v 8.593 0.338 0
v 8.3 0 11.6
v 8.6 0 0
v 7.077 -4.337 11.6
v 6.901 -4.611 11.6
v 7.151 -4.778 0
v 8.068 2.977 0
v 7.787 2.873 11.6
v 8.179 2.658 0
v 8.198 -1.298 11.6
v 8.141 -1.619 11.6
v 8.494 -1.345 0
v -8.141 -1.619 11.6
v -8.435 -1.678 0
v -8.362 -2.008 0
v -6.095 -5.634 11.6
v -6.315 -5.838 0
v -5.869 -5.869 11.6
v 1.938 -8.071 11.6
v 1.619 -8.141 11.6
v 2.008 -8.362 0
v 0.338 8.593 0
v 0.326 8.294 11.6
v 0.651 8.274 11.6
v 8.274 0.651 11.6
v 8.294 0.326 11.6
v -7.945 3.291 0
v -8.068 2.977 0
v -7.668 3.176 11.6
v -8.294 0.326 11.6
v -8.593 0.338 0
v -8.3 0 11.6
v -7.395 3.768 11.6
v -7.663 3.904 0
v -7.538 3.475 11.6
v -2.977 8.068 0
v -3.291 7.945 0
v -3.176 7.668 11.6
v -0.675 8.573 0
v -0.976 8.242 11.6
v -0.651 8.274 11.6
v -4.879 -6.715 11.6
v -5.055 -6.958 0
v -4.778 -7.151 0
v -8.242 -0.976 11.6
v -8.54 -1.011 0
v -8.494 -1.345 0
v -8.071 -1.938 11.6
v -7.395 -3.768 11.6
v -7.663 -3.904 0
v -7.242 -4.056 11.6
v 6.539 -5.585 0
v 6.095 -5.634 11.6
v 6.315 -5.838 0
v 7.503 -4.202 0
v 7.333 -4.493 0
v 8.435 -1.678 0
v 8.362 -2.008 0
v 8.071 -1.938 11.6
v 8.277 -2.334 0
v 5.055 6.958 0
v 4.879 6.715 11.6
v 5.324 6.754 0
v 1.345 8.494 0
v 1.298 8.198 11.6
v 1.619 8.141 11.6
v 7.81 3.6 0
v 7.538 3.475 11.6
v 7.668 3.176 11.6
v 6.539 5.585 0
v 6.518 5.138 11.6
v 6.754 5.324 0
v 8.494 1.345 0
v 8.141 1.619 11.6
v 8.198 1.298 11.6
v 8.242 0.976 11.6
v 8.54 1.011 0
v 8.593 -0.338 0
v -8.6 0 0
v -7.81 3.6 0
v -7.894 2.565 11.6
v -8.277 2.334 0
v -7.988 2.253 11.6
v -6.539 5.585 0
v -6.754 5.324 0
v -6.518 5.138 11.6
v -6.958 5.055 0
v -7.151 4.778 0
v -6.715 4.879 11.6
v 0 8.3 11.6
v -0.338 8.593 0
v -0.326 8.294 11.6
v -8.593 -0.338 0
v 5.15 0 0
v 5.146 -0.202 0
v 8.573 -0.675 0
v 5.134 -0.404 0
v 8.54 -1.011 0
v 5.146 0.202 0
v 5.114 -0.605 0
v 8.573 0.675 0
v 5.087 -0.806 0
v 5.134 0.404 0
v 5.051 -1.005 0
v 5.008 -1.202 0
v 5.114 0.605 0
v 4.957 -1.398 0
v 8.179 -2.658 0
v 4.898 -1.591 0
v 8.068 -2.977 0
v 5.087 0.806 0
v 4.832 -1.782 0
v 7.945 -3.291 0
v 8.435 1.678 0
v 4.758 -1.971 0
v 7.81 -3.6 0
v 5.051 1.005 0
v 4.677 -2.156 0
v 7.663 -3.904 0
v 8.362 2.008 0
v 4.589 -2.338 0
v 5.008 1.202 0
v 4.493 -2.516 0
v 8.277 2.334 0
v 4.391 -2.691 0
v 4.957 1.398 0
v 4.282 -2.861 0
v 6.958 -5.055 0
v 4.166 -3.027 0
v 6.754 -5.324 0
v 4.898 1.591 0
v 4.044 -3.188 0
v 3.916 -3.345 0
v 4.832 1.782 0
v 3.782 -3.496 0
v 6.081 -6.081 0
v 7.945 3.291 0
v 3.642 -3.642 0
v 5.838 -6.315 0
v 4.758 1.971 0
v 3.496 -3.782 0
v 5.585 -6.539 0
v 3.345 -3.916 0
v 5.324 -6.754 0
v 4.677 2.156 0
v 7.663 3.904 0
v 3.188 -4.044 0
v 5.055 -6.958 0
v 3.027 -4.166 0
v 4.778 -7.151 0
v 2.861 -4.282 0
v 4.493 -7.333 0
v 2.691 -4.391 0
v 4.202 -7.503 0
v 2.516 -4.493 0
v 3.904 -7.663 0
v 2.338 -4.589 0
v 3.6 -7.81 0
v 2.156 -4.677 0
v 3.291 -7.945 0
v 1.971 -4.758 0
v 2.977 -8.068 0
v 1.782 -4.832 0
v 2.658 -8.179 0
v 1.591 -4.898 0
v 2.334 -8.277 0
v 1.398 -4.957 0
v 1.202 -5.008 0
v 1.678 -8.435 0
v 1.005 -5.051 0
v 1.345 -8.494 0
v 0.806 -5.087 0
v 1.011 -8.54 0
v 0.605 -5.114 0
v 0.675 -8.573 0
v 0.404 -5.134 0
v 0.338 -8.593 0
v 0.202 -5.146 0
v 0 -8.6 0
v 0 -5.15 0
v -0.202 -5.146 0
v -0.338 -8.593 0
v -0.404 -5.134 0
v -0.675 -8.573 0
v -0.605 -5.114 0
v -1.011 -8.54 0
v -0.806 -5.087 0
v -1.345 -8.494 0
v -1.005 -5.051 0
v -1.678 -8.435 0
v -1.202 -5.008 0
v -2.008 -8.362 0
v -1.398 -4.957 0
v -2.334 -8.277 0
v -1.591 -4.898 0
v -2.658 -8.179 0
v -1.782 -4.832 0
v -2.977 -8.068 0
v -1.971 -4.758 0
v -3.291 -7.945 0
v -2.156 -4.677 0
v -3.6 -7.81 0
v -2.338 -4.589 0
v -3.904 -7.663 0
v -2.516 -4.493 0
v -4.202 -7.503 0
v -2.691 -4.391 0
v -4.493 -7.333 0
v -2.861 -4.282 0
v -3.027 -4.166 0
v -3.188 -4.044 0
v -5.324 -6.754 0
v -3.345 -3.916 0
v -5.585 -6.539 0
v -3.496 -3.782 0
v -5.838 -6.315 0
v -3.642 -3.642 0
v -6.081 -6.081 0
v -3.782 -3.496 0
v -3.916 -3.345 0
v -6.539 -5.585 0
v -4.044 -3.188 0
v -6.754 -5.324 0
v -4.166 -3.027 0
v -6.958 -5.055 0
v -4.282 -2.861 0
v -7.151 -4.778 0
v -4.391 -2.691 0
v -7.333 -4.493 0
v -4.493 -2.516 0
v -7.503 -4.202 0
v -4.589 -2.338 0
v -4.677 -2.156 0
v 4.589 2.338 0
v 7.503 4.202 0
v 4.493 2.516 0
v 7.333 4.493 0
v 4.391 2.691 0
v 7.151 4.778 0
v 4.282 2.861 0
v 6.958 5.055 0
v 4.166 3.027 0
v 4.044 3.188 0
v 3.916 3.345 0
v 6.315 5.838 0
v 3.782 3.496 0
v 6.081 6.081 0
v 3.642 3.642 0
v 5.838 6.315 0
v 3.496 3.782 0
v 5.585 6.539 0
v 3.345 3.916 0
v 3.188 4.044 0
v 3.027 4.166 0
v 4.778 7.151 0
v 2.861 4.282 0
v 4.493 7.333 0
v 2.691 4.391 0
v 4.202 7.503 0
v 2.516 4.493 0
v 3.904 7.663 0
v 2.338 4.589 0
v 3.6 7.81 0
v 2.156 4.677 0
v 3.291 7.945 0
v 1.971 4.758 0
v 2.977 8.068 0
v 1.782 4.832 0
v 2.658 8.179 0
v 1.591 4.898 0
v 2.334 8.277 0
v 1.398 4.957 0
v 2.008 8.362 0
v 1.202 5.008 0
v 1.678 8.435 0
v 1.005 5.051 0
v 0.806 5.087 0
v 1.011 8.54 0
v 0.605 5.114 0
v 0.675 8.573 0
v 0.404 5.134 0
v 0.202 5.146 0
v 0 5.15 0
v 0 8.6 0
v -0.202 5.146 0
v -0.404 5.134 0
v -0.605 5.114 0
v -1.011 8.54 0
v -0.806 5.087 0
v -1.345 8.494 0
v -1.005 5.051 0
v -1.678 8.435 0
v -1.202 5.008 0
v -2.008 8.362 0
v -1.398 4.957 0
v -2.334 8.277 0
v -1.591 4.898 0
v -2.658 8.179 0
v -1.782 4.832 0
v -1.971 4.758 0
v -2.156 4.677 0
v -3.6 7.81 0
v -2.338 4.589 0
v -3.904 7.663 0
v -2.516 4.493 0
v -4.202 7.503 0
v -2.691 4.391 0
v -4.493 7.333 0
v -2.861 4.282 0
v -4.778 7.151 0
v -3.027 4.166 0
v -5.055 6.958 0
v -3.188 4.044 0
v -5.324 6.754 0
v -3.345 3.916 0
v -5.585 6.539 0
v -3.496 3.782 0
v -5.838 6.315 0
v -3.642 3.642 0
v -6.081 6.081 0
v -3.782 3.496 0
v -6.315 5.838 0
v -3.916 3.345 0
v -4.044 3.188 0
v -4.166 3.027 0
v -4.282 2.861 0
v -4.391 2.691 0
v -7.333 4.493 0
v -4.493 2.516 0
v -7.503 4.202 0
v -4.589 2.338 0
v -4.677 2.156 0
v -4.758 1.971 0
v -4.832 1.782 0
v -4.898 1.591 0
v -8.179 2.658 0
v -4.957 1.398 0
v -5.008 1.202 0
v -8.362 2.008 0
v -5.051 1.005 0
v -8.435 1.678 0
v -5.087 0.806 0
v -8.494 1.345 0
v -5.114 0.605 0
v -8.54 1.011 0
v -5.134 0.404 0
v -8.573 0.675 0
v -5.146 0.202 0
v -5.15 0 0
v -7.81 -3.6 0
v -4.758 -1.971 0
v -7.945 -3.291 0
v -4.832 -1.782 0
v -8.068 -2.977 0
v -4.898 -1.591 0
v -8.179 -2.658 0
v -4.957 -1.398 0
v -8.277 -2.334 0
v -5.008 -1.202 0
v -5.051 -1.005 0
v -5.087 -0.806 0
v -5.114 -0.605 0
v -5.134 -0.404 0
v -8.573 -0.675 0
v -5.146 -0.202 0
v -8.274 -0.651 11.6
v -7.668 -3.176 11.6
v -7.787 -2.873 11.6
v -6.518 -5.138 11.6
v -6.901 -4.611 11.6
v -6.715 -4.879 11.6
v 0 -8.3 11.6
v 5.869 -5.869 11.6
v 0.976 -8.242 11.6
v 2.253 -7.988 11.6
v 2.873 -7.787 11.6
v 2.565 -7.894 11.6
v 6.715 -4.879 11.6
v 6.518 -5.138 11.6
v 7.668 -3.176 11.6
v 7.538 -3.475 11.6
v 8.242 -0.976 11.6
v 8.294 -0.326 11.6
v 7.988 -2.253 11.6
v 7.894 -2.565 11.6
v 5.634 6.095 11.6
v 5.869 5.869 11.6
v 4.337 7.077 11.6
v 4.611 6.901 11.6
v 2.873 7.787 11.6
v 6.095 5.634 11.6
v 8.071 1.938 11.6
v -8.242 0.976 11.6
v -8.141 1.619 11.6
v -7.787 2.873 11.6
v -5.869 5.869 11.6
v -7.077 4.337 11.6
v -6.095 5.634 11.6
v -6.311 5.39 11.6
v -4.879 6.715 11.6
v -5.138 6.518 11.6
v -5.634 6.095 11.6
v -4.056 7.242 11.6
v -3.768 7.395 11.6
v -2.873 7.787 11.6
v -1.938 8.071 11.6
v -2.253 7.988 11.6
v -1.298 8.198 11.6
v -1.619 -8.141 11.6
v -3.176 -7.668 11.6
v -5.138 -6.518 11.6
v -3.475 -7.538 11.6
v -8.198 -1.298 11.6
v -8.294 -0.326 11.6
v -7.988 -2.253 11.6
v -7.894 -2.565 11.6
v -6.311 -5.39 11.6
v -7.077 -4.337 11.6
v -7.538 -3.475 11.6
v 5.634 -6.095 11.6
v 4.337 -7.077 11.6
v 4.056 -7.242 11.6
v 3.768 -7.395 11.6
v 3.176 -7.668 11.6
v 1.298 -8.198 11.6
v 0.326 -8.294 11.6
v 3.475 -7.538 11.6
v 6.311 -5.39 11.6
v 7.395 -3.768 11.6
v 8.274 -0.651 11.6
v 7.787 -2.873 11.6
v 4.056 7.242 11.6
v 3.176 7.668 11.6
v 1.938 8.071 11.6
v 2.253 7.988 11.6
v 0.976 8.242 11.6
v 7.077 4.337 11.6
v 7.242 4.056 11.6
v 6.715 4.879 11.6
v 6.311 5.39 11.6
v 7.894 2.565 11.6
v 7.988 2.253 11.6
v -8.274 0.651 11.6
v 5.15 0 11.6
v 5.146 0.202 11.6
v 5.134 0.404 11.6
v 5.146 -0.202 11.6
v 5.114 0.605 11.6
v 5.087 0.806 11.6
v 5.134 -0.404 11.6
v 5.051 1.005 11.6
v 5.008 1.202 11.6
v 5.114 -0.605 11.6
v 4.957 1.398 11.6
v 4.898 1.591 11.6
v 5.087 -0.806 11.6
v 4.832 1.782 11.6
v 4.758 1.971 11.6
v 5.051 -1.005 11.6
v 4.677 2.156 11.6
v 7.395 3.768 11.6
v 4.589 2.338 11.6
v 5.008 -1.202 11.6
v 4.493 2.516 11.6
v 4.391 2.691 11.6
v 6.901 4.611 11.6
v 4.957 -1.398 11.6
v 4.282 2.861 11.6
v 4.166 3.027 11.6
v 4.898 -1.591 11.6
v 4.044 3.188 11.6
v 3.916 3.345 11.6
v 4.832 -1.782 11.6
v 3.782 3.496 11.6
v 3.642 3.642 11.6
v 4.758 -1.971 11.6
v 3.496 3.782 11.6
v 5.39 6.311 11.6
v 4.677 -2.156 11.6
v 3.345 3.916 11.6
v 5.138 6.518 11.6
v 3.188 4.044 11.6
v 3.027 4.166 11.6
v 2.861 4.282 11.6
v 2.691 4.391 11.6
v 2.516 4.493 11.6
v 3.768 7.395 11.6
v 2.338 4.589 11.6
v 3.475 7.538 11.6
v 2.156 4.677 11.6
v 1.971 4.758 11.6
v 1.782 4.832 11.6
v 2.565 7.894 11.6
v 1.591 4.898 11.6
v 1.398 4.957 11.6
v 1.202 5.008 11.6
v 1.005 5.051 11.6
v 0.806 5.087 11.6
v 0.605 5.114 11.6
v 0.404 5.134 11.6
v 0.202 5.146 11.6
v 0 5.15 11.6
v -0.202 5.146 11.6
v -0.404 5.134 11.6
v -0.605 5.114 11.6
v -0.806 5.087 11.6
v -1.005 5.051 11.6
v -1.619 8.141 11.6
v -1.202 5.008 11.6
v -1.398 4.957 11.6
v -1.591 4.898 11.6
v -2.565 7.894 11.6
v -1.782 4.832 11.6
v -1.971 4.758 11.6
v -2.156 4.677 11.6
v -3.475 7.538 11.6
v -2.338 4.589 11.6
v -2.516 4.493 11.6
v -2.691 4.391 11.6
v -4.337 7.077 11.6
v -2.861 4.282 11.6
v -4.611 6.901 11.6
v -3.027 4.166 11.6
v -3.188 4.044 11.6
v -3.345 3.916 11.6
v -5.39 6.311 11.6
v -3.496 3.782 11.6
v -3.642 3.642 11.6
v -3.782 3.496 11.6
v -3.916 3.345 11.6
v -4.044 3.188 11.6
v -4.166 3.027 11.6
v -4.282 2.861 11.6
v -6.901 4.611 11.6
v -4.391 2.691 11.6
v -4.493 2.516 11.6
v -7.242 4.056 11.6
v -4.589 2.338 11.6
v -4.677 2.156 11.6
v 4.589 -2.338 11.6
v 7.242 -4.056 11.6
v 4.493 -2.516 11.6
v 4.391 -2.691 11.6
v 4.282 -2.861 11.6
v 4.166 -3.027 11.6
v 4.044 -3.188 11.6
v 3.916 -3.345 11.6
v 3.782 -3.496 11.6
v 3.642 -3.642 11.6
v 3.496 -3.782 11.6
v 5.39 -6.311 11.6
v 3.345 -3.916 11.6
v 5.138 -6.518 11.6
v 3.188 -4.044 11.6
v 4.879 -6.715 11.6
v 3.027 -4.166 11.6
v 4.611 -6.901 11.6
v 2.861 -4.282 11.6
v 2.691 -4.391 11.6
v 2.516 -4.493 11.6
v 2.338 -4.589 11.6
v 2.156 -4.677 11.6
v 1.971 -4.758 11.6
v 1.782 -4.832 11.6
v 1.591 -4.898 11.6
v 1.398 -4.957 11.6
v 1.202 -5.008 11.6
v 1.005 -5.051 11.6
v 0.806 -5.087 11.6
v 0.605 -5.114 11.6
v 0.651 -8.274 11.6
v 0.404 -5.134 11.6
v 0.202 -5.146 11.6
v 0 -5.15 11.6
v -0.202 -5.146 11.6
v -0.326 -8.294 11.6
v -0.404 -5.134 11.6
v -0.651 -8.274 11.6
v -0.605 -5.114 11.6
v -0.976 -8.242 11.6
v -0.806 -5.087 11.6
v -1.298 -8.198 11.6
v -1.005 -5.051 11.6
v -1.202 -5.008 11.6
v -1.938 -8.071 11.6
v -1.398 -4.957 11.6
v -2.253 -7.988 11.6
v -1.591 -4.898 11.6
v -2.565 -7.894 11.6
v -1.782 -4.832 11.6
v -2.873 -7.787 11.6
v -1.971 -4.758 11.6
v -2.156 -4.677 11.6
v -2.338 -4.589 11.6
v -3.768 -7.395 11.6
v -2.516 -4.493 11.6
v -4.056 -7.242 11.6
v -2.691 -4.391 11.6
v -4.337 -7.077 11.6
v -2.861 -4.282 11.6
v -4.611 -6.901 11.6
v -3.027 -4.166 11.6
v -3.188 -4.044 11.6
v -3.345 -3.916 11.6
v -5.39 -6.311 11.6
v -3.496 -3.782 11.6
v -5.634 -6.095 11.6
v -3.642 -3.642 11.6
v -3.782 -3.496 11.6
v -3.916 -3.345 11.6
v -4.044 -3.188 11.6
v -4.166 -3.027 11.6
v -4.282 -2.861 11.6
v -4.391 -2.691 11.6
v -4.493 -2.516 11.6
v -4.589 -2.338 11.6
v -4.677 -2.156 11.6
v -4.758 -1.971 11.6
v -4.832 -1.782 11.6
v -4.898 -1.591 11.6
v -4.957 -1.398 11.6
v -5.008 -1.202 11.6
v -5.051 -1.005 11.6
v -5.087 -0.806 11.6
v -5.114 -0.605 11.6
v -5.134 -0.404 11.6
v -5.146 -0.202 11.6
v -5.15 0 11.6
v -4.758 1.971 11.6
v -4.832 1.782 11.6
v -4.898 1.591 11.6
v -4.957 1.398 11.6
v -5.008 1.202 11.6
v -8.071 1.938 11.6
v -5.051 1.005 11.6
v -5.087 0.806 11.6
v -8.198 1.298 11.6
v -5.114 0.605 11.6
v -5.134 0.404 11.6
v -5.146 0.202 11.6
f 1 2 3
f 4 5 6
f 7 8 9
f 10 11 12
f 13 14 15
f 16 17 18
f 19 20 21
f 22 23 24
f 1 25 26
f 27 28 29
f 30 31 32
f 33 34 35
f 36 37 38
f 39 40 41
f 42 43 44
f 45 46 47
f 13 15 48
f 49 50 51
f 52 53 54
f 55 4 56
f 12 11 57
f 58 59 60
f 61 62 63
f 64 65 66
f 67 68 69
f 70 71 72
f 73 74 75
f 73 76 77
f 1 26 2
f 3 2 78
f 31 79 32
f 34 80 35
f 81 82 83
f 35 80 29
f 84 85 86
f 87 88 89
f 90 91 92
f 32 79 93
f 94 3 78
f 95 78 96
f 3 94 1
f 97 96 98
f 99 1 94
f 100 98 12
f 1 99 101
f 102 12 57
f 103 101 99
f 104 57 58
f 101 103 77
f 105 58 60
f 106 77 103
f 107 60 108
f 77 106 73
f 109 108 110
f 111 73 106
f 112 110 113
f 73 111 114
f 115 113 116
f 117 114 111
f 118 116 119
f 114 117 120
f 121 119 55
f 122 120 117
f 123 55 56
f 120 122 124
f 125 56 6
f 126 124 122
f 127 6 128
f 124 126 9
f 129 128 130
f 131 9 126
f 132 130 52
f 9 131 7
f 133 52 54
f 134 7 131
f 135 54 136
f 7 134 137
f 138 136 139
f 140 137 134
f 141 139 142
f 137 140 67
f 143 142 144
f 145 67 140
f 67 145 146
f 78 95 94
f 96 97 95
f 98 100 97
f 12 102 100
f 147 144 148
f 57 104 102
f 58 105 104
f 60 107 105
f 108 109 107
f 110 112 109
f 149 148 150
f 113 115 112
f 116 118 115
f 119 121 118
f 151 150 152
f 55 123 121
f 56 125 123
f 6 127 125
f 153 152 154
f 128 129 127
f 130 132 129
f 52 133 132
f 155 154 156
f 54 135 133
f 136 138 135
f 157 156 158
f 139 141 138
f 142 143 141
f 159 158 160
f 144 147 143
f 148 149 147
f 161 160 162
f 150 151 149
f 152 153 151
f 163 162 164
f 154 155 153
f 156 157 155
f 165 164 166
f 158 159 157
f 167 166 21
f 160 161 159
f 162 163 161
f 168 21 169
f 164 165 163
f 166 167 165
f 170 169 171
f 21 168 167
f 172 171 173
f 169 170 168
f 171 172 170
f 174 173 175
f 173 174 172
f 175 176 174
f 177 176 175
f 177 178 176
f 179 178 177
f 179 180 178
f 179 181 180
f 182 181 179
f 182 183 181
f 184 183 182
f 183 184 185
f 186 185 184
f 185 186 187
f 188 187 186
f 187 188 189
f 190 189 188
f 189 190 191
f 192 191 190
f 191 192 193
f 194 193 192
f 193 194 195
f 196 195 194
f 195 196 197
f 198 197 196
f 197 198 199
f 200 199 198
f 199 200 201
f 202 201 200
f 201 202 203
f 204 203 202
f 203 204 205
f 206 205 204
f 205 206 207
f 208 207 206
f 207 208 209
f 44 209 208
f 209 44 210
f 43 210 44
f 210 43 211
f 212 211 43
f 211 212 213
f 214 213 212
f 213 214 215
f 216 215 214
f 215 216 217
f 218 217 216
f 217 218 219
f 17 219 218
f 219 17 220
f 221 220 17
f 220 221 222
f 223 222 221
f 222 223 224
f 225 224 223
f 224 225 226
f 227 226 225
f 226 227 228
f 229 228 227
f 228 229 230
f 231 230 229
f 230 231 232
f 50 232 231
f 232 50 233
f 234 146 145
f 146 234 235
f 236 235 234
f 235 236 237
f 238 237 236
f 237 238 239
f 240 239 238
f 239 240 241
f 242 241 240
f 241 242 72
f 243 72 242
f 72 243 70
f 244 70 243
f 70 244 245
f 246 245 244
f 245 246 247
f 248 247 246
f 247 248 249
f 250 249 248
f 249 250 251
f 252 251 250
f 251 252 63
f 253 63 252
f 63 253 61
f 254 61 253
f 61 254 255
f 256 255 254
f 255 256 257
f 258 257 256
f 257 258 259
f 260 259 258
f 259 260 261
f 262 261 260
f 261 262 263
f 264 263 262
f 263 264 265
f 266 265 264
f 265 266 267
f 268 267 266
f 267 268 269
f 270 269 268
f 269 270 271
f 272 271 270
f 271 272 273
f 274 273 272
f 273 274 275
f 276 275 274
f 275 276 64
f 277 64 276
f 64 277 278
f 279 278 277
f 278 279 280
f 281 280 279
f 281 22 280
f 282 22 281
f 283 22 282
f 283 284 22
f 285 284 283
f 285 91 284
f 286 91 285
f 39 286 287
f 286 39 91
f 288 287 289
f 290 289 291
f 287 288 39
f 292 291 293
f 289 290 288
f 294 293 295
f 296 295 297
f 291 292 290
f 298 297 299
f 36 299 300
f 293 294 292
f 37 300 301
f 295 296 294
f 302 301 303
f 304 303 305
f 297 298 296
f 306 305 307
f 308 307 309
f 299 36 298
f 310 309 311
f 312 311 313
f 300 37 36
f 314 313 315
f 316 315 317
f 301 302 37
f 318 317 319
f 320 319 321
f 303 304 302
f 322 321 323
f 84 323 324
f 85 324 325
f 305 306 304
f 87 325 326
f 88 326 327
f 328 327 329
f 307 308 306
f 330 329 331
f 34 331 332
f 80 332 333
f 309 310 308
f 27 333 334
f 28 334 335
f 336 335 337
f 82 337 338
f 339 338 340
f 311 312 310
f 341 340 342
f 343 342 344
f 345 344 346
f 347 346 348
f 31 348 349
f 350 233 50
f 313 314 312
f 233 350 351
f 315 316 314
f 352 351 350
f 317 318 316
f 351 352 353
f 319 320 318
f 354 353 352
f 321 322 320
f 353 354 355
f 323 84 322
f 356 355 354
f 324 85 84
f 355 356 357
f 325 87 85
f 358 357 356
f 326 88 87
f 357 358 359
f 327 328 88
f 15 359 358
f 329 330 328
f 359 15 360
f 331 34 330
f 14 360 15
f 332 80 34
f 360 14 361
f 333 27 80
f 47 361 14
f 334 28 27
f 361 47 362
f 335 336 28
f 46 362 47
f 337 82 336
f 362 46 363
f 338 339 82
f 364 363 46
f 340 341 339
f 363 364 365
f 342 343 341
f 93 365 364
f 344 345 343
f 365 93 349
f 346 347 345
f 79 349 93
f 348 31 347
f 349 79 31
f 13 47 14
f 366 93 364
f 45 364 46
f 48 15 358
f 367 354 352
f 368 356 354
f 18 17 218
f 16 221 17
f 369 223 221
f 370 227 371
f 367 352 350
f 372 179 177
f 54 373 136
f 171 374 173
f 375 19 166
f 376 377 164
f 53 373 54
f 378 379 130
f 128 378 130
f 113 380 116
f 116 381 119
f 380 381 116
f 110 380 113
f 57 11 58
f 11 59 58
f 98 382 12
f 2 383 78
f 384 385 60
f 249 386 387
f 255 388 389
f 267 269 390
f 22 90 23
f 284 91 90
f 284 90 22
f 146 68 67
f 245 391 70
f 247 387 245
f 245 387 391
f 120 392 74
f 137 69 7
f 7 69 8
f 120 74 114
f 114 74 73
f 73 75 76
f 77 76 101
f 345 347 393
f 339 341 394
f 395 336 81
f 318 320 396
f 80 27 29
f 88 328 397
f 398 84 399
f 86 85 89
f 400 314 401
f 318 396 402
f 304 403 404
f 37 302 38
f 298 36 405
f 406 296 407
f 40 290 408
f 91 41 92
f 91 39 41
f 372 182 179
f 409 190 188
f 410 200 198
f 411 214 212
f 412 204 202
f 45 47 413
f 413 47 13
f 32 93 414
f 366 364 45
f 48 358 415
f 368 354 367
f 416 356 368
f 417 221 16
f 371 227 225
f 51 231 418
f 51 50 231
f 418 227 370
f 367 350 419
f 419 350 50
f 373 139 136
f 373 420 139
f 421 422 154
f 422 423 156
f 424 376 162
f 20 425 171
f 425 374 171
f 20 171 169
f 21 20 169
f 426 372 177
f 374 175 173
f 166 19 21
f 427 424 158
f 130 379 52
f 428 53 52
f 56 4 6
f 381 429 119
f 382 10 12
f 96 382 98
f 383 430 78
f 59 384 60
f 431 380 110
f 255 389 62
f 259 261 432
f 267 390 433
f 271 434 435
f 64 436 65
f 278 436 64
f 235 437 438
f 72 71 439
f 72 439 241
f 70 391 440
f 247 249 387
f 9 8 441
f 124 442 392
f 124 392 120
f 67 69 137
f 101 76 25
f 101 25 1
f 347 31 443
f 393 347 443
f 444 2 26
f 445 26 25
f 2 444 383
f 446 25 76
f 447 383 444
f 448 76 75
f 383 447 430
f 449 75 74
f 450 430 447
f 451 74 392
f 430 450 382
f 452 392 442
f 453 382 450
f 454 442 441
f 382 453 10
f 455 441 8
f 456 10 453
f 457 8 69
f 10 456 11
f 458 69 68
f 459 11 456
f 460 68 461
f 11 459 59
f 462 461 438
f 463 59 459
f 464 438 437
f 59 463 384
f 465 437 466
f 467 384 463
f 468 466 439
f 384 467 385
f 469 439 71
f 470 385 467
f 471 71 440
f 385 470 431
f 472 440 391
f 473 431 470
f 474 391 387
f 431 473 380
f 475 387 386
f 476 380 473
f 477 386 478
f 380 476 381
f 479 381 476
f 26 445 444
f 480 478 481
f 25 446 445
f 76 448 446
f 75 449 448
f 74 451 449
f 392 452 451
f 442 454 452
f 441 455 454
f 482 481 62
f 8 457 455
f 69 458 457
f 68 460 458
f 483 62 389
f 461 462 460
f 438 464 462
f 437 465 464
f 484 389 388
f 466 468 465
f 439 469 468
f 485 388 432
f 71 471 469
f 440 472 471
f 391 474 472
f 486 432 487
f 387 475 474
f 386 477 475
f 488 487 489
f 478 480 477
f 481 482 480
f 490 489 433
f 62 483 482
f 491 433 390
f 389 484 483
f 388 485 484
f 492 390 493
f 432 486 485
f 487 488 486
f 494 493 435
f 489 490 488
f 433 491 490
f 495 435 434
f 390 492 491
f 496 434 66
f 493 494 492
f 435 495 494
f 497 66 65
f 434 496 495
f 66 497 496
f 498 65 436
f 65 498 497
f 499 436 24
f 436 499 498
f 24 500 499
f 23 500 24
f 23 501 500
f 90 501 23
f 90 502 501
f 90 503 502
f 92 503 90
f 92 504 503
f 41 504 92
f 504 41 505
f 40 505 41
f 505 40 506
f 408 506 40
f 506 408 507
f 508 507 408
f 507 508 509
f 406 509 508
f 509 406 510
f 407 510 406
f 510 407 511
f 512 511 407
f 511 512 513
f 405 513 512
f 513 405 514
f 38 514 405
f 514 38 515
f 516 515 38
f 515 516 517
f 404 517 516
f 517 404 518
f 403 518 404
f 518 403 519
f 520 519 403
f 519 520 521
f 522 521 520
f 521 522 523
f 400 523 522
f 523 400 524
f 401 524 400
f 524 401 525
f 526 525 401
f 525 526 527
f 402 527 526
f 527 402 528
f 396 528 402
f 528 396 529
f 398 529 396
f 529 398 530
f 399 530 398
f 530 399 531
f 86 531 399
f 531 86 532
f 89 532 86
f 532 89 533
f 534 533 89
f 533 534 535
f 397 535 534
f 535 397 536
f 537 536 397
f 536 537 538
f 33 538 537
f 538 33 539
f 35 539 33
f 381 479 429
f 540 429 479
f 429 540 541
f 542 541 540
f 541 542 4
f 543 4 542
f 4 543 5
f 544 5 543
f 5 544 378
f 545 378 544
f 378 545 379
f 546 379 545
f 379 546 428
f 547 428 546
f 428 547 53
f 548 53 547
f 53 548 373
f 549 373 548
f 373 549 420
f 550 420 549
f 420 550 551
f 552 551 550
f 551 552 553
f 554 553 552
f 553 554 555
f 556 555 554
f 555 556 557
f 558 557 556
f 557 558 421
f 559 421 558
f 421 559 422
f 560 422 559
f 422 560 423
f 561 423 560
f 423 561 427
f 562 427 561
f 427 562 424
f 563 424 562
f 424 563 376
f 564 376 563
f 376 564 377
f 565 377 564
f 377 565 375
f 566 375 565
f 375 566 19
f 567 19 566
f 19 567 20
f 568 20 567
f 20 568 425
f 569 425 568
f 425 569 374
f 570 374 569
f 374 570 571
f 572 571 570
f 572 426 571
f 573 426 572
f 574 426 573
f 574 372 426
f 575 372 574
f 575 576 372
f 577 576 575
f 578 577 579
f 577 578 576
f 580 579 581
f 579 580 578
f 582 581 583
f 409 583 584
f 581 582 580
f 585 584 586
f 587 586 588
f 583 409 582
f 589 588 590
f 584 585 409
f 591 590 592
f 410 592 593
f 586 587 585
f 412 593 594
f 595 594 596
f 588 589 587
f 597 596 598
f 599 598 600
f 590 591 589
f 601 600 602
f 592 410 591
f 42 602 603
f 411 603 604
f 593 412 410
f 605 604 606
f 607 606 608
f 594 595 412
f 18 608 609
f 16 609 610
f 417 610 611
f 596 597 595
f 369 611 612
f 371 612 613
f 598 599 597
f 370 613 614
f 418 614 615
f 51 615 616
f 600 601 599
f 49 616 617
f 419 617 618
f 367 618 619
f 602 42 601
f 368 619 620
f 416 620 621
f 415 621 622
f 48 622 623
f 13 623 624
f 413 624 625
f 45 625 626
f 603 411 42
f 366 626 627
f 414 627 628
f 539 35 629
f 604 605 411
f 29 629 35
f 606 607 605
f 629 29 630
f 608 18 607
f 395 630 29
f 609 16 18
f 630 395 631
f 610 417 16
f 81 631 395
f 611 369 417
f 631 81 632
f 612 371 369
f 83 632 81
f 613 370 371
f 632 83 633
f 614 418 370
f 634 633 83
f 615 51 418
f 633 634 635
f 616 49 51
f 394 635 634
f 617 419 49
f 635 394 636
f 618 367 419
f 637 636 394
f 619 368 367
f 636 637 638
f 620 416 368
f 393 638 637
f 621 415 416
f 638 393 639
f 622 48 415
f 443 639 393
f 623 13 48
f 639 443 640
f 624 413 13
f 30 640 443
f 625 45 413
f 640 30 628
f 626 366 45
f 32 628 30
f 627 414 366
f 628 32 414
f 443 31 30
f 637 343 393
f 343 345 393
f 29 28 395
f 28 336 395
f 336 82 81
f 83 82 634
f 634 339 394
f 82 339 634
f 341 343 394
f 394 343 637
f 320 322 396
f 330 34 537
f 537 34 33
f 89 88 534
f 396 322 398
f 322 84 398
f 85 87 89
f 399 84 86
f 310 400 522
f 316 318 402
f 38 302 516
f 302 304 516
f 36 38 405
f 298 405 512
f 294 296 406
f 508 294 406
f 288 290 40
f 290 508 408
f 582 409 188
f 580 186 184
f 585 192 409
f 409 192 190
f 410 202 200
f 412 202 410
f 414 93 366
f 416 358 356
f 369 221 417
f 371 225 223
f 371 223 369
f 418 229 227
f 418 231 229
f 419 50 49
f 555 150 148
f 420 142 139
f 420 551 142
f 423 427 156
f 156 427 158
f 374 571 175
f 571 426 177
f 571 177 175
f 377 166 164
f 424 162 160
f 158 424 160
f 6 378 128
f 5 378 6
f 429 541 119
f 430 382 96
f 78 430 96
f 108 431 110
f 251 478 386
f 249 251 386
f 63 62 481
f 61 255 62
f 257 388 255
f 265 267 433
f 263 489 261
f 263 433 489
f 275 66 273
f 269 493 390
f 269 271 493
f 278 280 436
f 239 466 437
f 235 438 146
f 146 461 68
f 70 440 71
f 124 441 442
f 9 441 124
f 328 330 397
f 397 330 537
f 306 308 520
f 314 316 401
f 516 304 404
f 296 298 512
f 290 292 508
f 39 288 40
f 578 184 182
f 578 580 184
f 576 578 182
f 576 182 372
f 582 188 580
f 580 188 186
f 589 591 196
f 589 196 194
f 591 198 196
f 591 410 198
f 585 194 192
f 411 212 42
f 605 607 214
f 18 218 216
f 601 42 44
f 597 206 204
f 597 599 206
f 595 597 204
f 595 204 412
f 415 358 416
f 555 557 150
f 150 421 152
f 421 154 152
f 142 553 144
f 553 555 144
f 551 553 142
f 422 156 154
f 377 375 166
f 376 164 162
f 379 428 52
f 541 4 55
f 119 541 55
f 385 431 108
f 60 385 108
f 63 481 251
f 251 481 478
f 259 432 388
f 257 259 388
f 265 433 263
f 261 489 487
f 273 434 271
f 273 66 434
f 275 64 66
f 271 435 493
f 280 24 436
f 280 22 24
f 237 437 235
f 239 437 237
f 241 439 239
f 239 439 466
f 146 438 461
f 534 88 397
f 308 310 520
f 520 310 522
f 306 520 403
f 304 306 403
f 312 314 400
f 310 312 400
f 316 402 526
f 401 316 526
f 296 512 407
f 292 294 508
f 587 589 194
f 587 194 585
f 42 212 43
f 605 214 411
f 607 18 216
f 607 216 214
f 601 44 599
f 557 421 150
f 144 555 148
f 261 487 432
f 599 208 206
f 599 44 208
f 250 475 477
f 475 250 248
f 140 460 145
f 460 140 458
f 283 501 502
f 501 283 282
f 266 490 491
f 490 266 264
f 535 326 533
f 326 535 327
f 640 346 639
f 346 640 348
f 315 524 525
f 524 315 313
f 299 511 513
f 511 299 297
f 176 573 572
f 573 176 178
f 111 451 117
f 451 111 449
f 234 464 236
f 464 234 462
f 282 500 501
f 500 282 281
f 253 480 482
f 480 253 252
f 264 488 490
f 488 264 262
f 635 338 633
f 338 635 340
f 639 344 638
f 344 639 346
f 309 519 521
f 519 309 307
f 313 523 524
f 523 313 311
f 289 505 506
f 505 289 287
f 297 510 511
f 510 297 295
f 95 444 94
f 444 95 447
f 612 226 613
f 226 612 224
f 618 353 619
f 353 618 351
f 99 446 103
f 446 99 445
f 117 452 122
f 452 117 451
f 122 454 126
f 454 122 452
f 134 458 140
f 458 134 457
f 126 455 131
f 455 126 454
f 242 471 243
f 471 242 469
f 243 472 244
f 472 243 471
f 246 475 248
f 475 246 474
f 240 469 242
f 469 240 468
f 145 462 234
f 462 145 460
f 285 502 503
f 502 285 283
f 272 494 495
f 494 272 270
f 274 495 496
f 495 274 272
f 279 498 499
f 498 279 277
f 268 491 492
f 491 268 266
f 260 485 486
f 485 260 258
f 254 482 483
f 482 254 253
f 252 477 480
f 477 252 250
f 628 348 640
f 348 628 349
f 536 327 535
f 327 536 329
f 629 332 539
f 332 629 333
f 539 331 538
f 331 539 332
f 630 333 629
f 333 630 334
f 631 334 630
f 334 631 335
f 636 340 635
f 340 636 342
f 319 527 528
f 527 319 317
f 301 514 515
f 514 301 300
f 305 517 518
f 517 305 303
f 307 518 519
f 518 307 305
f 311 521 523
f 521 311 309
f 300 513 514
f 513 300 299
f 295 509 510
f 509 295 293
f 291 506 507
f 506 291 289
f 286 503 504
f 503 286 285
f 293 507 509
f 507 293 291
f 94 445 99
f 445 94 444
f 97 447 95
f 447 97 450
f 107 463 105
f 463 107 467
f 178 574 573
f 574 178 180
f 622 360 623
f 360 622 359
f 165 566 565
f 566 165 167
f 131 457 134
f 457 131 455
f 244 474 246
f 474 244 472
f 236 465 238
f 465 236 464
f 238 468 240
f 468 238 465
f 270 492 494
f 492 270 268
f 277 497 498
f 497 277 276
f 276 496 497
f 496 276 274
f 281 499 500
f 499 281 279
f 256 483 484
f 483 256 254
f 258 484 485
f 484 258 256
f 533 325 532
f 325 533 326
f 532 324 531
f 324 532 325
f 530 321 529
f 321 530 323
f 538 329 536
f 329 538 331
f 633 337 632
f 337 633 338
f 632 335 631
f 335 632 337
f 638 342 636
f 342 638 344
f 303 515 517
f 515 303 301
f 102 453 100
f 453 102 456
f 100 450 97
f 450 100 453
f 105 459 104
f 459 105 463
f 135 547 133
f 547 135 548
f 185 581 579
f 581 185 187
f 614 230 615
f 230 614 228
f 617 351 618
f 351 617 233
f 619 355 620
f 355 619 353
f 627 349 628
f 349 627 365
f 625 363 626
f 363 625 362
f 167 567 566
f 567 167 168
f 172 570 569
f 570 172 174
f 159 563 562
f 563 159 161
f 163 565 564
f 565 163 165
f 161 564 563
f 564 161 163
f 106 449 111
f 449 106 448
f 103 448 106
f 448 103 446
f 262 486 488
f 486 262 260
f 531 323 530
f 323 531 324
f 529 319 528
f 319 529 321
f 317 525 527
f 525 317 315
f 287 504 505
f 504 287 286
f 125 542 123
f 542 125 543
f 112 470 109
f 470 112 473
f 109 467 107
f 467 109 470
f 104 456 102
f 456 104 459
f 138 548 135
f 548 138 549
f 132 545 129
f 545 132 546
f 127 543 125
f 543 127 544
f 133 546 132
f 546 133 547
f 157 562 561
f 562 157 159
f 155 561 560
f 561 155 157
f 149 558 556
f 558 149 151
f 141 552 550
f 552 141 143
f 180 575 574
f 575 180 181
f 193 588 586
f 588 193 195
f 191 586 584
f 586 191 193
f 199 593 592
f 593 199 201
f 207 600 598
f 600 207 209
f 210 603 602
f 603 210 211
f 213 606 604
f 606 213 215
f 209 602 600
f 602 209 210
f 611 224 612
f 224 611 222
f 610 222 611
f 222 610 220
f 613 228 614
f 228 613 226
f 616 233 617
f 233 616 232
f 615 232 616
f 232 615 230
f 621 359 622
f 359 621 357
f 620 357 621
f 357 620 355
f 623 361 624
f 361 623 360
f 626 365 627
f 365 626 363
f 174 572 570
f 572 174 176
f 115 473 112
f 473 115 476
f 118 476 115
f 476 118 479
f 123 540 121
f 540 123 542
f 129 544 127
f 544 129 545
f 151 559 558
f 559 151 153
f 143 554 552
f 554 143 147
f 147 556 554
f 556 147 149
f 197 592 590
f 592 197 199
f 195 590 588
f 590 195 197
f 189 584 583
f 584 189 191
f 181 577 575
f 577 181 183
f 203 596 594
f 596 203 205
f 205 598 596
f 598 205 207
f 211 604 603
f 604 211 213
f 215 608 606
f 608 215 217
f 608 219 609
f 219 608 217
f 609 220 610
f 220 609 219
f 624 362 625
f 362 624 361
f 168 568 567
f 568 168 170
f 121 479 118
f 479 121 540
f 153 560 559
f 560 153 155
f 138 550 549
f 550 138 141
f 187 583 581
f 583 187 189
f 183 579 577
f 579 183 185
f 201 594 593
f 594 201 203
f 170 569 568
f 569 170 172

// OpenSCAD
$fn=160;




difference(){
union(){
cylinder(h = 11.6, r1=8.6, r2=8.3);

}
translate([0,0,-10])
cylinder(h = 100, d = 10.3);
}
